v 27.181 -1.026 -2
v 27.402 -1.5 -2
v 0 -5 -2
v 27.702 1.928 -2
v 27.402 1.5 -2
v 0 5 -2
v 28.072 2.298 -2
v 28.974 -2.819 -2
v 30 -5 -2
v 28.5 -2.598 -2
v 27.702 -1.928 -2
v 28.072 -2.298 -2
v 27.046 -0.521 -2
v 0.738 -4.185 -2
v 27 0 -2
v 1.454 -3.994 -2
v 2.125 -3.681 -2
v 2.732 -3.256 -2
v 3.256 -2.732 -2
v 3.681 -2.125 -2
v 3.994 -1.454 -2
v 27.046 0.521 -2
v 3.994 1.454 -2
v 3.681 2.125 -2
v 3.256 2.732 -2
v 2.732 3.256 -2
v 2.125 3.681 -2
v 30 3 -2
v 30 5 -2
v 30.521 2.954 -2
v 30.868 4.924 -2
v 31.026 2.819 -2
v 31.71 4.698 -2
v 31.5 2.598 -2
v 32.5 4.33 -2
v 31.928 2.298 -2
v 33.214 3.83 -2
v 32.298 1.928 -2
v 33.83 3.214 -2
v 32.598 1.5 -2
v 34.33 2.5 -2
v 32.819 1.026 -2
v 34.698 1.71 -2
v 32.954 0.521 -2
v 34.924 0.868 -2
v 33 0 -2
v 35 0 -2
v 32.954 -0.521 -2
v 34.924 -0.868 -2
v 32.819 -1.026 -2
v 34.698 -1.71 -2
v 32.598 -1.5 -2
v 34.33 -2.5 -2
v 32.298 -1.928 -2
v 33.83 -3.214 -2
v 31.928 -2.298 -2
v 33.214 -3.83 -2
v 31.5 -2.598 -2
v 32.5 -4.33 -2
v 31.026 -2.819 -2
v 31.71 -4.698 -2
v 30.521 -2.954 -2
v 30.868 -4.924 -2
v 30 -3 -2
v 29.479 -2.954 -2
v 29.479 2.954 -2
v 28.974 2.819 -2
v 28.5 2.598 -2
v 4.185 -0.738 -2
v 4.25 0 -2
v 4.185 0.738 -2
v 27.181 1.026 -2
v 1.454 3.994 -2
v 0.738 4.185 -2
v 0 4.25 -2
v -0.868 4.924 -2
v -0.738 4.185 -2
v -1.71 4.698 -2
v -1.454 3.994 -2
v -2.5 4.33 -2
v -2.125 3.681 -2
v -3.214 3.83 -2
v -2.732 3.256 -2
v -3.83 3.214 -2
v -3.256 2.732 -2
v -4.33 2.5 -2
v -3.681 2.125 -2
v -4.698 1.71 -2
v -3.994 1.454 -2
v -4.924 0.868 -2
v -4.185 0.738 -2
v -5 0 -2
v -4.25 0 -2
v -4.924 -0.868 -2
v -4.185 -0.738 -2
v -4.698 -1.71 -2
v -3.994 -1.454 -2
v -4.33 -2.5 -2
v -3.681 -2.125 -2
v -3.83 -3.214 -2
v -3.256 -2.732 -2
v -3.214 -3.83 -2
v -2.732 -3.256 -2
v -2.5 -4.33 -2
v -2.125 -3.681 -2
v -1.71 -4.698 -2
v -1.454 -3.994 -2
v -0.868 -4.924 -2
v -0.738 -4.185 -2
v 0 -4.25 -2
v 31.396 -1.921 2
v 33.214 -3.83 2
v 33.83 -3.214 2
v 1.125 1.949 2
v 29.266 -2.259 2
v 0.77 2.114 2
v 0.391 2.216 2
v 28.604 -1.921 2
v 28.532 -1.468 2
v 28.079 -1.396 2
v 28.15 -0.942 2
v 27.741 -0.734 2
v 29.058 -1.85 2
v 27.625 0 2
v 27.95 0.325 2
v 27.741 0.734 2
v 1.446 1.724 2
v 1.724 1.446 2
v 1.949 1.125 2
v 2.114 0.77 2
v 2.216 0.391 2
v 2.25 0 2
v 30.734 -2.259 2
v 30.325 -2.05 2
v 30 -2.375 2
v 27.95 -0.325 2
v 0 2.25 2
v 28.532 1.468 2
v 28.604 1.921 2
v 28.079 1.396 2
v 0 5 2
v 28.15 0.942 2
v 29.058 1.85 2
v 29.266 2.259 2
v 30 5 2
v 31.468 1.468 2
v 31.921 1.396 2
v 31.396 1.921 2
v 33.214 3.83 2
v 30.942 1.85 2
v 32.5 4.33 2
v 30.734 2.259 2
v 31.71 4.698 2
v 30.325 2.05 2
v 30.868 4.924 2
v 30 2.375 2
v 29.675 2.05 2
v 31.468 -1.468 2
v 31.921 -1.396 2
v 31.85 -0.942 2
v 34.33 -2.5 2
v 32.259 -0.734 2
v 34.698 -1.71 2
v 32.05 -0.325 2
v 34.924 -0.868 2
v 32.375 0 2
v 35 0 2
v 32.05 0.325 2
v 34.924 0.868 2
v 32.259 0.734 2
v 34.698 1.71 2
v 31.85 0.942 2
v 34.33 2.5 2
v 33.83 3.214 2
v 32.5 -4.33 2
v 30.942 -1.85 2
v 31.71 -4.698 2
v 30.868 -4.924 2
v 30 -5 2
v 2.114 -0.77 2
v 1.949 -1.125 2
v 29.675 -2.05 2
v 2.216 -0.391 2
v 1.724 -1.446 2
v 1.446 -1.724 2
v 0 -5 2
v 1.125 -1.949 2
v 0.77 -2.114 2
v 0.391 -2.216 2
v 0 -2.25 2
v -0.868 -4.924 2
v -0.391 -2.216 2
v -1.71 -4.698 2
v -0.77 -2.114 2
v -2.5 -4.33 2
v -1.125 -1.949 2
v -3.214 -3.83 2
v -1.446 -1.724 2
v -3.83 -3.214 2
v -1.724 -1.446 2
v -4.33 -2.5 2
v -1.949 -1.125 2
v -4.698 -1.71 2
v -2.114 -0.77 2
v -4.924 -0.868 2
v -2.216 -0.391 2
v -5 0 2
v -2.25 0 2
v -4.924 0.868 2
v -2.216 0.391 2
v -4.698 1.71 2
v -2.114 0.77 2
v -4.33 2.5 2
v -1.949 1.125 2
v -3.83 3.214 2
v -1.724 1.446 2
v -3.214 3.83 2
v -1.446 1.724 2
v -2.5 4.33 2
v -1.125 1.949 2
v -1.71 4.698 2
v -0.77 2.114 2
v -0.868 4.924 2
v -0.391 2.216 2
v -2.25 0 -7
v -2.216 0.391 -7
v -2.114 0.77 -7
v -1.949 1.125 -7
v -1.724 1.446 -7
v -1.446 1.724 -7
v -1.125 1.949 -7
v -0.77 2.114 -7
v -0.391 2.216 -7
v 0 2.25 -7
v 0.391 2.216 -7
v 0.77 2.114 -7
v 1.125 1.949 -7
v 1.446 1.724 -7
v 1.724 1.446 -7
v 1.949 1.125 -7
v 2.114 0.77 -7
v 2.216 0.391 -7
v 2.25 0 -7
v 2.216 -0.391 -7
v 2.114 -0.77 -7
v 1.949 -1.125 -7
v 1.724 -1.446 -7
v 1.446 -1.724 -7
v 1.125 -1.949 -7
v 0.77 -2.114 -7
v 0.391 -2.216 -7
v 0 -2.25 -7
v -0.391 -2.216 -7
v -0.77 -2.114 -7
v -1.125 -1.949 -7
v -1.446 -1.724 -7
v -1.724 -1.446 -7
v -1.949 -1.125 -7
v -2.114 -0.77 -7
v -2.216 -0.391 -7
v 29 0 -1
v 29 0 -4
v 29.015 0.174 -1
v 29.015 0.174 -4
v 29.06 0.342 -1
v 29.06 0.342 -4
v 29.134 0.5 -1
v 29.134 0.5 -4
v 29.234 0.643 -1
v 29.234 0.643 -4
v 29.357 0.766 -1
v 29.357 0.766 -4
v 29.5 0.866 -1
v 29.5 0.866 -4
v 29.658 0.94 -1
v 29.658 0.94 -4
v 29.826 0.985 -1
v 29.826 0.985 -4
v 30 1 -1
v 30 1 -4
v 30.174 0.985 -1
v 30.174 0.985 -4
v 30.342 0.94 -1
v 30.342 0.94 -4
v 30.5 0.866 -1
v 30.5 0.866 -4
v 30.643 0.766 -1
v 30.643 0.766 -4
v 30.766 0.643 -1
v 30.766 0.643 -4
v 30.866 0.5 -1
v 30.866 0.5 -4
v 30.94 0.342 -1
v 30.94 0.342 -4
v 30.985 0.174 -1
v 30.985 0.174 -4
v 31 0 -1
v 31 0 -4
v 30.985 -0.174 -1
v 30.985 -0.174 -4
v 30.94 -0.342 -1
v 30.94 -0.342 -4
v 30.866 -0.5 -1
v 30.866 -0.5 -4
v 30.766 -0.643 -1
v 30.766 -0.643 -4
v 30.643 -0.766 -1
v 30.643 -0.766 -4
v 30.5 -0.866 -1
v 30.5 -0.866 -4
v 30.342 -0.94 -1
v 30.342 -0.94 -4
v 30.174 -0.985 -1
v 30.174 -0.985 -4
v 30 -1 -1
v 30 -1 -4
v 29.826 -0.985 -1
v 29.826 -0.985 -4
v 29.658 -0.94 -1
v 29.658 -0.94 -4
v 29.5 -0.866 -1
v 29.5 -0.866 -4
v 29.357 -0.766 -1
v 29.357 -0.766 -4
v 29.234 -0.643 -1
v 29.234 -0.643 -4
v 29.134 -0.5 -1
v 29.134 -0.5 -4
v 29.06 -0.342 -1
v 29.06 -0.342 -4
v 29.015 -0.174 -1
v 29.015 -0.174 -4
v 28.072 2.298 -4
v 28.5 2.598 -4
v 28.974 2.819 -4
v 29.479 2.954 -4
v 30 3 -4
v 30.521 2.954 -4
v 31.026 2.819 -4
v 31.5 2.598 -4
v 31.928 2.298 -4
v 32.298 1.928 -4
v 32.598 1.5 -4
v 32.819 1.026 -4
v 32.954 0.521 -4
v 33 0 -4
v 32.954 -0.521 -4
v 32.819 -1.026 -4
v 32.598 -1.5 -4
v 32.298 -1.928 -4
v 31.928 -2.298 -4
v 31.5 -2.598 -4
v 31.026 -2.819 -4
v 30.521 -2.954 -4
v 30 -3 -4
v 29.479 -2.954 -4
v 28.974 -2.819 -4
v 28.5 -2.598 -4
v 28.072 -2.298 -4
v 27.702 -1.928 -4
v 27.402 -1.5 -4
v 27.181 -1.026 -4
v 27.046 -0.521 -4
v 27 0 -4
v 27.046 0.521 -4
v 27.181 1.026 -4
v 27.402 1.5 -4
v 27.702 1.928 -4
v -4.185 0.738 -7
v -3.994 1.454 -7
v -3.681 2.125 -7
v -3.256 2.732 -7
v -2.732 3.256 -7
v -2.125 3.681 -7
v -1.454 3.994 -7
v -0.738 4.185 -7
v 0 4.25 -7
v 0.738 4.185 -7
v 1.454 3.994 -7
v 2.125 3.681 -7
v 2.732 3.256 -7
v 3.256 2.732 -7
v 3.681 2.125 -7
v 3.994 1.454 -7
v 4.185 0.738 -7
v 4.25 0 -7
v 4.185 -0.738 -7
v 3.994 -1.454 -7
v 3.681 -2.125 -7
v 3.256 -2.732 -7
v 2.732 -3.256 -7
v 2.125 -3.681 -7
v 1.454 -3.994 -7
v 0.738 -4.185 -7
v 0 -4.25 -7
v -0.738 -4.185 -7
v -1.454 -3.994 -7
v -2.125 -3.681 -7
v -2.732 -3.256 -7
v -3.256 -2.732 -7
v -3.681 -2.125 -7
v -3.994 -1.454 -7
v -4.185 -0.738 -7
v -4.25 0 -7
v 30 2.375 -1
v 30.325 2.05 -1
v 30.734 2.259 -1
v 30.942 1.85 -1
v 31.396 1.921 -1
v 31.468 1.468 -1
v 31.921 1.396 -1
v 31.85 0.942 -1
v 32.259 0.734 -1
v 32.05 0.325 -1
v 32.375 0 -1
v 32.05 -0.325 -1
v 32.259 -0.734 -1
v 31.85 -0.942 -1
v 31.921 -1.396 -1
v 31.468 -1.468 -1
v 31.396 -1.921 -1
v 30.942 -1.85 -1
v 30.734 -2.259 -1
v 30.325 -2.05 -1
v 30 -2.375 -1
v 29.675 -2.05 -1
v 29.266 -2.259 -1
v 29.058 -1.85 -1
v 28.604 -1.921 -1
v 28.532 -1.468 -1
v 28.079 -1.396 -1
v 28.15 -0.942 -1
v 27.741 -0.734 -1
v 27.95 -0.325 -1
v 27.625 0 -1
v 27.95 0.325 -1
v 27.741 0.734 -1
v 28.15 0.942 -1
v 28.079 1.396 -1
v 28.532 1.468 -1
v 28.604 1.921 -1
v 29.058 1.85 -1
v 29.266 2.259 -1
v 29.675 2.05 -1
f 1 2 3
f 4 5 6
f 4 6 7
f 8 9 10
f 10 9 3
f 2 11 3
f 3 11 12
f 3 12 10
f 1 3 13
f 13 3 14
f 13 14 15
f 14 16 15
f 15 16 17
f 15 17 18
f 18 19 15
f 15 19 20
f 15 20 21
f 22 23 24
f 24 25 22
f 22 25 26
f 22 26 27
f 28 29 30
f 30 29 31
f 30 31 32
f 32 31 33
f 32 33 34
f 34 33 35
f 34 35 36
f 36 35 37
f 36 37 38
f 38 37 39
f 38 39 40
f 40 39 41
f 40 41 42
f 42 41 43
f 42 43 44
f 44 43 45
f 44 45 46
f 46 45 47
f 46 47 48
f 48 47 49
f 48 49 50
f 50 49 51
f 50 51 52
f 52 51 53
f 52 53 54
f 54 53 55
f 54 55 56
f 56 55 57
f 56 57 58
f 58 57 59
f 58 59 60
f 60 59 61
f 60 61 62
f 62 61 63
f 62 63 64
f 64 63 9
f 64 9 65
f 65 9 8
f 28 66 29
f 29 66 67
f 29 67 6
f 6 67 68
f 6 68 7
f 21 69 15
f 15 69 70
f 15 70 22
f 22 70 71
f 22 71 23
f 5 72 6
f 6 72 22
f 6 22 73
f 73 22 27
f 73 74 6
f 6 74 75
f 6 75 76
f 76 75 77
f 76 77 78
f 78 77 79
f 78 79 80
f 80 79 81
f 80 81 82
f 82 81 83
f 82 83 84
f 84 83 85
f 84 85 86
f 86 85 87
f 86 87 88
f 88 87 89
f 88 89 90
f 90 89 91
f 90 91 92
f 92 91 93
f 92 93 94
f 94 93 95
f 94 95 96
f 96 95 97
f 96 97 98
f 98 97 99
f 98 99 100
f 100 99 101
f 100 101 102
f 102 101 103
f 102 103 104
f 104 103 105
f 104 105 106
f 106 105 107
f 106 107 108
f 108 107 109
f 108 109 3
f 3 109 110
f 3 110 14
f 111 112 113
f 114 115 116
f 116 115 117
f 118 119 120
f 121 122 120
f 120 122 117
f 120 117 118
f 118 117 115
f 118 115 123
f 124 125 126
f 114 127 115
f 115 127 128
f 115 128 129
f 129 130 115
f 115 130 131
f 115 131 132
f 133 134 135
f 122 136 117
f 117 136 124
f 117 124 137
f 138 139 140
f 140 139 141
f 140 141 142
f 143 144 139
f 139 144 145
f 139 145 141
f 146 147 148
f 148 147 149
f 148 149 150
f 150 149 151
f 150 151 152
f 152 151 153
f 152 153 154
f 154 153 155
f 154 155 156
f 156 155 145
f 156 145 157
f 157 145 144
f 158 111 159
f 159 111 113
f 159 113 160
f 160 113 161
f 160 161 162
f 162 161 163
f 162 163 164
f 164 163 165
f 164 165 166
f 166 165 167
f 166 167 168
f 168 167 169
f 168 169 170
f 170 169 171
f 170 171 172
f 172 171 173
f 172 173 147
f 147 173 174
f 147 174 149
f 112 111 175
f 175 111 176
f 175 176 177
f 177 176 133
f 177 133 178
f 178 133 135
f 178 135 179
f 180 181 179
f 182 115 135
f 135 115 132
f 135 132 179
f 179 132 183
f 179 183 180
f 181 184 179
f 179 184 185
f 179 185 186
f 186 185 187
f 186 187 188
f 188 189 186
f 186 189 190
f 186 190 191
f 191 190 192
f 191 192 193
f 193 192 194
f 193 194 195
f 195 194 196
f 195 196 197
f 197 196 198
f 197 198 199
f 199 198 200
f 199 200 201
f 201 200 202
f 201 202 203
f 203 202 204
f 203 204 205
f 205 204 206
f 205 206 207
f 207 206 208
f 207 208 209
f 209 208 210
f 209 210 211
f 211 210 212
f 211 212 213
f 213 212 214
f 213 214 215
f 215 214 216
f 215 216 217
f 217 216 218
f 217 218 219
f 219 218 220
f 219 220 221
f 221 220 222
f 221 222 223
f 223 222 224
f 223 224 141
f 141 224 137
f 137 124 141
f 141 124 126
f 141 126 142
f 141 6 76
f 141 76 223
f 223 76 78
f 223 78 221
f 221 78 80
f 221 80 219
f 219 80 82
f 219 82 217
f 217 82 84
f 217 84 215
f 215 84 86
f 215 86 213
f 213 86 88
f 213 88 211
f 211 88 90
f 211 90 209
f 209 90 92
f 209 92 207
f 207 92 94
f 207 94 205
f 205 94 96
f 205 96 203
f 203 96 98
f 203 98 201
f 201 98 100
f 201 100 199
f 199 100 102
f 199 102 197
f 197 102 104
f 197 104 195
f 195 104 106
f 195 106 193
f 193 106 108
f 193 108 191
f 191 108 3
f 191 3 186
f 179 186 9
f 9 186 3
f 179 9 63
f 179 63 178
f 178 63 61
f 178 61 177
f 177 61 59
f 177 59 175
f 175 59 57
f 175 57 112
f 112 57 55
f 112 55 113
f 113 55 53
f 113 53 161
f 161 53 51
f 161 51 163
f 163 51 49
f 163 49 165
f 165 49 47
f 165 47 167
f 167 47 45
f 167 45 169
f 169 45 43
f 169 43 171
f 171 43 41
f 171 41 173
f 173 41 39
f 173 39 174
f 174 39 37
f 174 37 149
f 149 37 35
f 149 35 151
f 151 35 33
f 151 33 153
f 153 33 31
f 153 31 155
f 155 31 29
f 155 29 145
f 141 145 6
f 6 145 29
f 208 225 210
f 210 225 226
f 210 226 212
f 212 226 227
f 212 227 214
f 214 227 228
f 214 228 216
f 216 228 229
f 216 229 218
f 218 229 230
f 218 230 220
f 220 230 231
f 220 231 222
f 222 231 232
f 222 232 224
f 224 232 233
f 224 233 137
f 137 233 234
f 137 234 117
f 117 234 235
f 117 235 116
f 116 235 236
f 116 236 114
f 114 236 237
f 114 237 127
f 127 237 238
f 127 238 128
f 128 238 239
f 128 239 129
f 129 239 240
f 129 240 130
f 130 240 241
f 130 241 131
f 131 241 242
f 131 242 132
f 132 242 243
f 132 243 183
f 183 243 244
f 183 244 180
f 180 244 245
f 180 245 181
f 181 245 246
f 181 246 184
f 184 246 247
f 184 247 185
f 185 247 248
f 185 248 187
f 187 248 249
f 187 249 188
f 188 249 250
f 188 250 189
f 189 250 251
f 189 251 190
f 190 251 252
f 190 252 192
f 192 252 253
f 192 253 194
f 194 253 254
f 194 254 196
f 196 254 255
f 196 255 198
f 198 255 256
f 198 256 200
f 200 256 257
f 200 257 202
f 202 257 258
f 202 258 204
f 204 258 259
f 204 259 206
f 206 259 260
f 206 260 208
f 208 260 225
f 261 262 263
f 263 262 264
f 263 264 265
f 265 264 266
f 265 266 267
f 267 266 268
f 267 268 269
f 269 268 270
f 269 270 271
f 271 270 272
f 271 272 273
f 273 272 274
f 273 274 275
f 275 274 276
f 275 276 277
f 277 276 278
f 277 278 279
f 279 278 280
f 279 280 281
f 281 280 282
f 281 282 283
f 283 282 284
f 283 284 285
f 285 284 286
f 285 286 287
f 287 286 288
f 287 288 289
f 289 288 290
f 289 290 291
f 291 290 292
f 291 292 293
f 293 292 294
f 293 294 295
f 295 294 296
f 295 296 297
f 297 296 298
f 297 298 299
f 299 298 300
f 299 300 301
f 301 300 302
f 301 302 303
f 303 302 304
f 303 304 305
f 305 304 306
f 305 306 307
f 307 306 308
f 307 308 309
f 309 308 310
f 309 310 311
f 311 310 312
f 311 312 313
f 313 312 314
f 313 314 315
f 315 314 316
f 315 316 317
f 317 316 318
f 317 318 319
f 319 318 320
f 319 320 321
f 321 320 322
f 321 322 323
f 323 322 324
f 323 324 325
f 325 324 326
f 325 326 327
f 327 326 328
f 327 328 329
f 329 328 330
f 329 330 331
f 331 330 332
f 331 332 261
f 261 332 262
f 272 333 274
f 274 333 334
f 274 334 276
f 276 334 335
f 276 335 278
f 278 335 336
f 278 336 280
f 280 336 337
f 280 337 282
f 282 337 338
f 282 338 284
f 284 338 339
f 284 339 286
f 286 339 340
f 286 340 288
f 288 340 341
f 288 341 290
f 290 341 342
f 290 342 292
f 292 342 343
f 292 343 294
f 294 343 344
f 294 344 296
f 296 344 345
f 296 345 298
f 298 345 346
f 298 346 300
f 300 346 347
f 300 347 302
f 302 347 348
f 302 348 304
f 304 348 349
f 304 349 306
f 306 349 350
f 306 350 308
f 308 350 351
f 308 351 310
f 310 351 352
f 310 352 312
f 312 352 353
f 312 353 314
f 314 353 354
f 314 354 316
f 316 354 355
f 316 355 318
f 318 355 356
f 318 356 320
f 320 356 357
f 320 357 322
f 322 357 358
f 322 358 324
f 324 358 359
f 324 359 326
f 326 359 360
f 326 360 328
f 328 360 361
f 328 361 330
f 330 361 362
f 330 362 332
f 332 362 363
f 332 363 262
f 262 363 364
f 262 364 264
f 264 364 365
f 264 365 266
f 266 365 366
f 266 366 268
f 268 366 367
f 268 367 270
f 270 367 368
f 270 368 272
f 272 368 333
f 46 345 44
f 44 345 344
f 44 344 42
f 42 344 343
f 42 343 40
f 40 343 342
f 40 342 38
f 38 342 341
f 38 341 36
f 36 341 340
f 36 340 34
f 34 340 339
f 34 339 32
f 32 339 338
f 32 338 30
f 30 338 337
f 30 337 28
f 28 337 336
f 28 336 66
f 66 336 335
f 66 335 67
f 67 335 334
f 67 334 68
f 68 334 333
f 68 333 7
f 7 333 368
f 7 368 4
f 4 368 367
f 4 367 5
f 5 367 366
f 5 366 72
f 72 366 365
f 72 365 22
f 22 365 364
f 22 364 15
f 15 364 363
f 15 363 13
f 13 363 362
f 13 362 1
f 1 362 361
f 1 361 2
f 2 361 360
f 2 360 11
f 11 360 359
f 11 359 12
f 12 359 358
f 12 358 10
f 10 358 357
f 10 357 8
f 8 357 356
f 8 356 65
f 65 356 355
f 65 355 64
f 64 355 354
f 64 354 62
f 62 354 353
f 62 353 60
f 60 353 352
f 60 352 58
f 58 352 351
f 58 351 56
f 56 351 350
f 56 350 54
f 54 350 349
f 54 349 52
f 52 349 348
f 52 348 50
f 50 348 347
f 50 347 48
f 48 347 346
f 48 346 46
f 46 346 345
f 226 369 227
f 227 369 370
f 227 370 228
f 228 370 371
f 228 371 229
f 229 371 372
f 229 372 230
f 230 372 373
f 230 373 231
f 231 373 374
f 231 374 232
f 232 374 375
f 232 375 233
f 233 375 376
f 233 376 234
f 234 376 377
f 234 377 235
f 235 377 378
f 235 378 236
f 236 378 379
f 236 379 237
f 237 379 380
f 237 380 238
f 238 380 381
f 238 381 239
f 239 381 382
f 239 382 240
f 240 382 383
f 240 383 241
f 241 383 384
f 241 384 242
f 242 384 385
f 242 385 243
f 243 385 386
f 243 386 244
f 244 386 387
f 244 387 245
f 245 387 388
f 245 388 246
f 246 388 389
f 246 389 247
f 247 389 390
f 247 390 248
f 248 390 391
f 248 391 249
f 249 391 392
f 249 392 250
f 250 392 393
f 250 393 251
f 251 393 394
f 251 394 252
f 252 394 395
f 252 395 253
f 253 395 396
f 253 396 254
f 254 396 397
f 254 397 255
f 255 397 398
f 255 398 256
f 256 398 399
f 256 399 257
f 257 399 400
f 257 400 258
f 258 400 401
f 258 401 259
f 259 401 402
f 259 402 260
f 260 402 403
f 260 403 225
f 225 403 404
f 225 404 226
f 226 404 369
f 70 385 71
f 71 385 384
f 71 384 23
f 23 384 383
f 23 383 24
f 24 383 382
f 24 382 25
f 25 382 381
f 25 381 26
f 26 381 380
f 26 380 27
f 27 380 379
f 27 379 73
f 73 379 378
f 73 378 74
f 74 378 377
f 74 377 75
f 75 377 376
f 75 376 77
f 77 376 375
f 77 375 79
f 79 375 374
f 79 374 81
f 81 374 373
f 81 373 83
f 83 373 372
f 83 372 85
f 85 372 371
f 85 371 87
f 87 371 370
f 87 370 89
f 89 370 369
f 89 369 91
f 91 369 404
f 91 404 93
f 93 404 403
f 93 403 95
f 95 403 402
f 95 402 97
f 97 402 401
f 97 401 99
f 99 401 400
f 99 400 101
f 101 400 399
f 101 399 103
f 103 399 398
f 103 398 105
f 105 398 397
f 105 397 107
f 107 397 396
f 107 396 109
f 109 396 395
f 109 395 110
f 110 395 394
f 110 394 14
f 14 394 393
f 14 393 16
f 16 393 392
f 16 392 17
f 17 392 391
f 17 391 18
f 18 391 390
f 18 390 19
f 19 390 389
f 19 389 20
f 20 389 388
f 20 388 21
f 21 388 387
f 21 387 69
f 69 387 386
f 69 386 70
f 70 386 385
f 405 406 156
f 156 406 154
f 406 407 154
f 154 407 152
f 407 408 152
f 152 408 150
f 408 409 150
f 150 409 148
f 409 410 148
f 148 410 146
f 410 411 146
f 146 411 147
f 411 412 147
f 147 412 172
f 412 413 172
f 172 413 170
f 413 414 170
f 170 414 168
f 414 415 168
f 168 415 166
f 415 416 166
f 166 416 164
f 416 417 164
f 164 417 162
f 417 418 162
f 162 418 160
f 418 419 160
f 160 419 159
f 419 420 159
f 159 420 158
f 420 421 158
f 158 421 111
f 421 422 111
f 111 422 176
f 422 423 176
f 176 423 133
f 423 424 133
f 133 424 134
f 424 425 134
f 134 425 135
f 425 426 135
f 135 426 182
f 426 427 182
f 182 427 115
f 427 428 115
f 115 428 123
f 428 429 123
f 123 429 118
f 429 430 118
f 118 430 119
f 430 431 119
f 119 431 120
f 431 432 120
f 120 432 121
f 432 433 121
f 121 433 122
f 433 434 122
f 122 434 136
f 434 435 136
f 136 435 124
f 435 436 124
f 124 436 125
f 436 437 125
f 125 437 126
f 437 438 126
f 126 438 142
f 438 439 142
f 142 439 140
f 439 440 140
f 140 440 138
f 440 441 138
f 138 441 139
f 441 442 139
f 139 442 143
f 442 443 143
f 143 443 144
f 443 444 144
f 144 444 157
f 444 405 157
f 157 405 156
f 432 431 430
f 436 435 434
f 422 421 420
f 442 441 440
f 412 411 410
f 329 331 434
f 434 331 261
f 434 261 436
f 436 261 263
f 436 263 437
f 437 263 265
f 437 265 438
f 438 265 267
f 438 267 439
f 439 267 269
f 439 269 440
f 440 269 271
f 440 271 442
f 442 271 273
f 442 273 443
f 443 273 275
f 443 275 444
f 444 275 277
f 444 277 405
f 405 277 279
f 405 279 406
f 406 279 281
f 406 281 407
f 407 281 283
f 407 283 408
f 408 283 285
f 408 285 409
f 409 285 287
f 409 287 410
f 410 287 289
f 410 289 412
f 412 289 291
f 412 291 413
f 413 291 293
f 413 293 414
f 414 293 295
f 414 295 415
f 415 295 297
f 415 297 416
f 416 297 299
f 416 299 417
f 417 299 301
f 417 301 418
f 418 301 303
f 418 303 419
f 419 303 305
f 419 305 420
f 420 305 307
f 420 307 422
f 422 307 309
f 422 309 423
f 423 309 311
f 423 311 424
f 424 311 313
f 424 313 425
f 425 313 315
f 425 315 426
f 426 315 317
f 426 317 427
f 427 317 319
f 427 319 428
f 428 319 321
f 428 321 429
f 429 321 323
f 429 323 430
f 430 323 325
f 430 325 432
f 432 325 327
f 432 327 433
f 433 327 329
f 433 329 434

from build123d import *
from build123d.topology import SkipClean

# Parameters (mm, degrees)
SKETCH1_R           = 2.25
SKETCH1_R_2         = 1
BOSS_EXTRUDE1_DEPTH = 2
BOSS_EXTRUDE2_START = 2
SKETCH3_R           = 3
SKETCH3_R_2         = 1
BOSS_EXTRUDE2_DEPTH = 2
BOSS_EXTRUDE3_START = 5
SKETCH4_R           = 4.25
SKETCH4_R_2         = 2.25
BOSS_EXTRUDE3_DEPTH = 5
CUT_EXTRUDE1_DEPTH  = 3


with BuildPart() as part:
    # Sketch1 → Boss-Extrude1 (new, symmetric)
    with BuildSketch(Plane.XY):
        with BuildLine():
            Line((0, 5), (30, 5))
            ThreePointArc((30, 5), (35, 0), (30, -5))
            Line((30, -5), (0, -5))
            ThreePointArc((0, -5), (-5, 0), (0, 5))
        make_face()
        Circle(SKETCH1_R, mode=Mode.SUBTRACT)
        with Locations((30, 0)):
            Circle(SKETCH1_R_2, mode=Mode.SUBTRACT)
    extrude(amount=BOSS_EXTRUDE1_DEPTH, both=True)

    # Sketch3 → Boss-Extrude2 (add)
    with SkipClean():  # the faces are left unmerged after this step: merging them gives an invalid solid
        with BuildSketch(Plane(origin=(0, 0, -2), x_dir=(-1, 0, 0), z_dir=(0, 0, -1)).offset(BOSS_EXTRUDE2_START)):
            with Locations(Location((-30, 0, 0), (0, 0, 180))):
                Circle(SKETCH3_R)
            with Locations((-30, 0)):
                Circle(SKETCH3_R_2, mode=Mode.SUBTRACT)
        extrude(amount=-BOSS_EXTRUDE2_DEPTH)

    # Sketch4 → Boss-Extrude3 (add)
    with SkipClean():  # the faces are left unmerged after this step: merging them gives an invalid solid
        with BuildSketch(Plane(origin=(0, 0, -2), x_dir=(-1, 0, 0), z_dir=(0, 0, -1)).offset(BOSS_EXTRUDE3_START)):
            with Locations(Location((0, 0, 0), (0, 0, 180))):
                Circle(SKETCH4_R)
            Circle(SKETCH4_R_2, mode=Mode.SUBTRACT)
        extrude(amount=-BOSS_EXTRUDE3_DEPTH)

    # Sketch6 → Cut-Extrude1 (cut)
    with SkipClean():  # the faces are left unmerged after this step: merging them gives an invalid solid
        with BuildSketch(Plane.XY.offset(2)):
            Polygon((29.675269252, 2.050269252), (30, 2.375), (30.324730748, 2.050269252), (30.733915362, 2.258759226), (30.942405336, 1.849574613), (31.395989974, 1.921415362), (31.467830723, 1.467830723), (31.921415362, 1.395989974), (31.849574613, 0.942405336), (32.258759226, 0.733915362), (32.050269252, 0.324730748), (32.375, 0), (32.050269252, -0.324730748), (32.258759226, -0.733915362), (31.849574613, -0.942405336), (31.921415362, -1.395989974), (31.467830723, -1.467830723), (31.395989974, -1.921415362), (30.942405336, -1.849574613), (30.733915362, -2.258759226), (30.324730748, -2.050269252), (30, -2.375), (29.675269252, -2.050269252), (29.266084638, -2.258759226), (29.057594664, -1.849574613), (28.604010026, -1.921415362), (28.532169277, -1.467830723), (28.078584638, -1.395989974), (28.150425387, -0.942405336), (27.741240774, -0.733915362), (27.949730748, -0.324730748), (27.625, 0), (27.949730748, 0.324730748), (27.741240774, 0.733915362), (28.150425387, 0.942405336), (28.078584638, 1.395989974), (28.532169277, 1.467830723), (28.604010026, 1.921415362), (29.057594664, 1.849574613), (29.266084638, 2.258759226), align=None)
        extrude(amount=-CUT_EXTRUDE1_DEPTH, mode=Mode.SUBTRACT)


solid = part.part
